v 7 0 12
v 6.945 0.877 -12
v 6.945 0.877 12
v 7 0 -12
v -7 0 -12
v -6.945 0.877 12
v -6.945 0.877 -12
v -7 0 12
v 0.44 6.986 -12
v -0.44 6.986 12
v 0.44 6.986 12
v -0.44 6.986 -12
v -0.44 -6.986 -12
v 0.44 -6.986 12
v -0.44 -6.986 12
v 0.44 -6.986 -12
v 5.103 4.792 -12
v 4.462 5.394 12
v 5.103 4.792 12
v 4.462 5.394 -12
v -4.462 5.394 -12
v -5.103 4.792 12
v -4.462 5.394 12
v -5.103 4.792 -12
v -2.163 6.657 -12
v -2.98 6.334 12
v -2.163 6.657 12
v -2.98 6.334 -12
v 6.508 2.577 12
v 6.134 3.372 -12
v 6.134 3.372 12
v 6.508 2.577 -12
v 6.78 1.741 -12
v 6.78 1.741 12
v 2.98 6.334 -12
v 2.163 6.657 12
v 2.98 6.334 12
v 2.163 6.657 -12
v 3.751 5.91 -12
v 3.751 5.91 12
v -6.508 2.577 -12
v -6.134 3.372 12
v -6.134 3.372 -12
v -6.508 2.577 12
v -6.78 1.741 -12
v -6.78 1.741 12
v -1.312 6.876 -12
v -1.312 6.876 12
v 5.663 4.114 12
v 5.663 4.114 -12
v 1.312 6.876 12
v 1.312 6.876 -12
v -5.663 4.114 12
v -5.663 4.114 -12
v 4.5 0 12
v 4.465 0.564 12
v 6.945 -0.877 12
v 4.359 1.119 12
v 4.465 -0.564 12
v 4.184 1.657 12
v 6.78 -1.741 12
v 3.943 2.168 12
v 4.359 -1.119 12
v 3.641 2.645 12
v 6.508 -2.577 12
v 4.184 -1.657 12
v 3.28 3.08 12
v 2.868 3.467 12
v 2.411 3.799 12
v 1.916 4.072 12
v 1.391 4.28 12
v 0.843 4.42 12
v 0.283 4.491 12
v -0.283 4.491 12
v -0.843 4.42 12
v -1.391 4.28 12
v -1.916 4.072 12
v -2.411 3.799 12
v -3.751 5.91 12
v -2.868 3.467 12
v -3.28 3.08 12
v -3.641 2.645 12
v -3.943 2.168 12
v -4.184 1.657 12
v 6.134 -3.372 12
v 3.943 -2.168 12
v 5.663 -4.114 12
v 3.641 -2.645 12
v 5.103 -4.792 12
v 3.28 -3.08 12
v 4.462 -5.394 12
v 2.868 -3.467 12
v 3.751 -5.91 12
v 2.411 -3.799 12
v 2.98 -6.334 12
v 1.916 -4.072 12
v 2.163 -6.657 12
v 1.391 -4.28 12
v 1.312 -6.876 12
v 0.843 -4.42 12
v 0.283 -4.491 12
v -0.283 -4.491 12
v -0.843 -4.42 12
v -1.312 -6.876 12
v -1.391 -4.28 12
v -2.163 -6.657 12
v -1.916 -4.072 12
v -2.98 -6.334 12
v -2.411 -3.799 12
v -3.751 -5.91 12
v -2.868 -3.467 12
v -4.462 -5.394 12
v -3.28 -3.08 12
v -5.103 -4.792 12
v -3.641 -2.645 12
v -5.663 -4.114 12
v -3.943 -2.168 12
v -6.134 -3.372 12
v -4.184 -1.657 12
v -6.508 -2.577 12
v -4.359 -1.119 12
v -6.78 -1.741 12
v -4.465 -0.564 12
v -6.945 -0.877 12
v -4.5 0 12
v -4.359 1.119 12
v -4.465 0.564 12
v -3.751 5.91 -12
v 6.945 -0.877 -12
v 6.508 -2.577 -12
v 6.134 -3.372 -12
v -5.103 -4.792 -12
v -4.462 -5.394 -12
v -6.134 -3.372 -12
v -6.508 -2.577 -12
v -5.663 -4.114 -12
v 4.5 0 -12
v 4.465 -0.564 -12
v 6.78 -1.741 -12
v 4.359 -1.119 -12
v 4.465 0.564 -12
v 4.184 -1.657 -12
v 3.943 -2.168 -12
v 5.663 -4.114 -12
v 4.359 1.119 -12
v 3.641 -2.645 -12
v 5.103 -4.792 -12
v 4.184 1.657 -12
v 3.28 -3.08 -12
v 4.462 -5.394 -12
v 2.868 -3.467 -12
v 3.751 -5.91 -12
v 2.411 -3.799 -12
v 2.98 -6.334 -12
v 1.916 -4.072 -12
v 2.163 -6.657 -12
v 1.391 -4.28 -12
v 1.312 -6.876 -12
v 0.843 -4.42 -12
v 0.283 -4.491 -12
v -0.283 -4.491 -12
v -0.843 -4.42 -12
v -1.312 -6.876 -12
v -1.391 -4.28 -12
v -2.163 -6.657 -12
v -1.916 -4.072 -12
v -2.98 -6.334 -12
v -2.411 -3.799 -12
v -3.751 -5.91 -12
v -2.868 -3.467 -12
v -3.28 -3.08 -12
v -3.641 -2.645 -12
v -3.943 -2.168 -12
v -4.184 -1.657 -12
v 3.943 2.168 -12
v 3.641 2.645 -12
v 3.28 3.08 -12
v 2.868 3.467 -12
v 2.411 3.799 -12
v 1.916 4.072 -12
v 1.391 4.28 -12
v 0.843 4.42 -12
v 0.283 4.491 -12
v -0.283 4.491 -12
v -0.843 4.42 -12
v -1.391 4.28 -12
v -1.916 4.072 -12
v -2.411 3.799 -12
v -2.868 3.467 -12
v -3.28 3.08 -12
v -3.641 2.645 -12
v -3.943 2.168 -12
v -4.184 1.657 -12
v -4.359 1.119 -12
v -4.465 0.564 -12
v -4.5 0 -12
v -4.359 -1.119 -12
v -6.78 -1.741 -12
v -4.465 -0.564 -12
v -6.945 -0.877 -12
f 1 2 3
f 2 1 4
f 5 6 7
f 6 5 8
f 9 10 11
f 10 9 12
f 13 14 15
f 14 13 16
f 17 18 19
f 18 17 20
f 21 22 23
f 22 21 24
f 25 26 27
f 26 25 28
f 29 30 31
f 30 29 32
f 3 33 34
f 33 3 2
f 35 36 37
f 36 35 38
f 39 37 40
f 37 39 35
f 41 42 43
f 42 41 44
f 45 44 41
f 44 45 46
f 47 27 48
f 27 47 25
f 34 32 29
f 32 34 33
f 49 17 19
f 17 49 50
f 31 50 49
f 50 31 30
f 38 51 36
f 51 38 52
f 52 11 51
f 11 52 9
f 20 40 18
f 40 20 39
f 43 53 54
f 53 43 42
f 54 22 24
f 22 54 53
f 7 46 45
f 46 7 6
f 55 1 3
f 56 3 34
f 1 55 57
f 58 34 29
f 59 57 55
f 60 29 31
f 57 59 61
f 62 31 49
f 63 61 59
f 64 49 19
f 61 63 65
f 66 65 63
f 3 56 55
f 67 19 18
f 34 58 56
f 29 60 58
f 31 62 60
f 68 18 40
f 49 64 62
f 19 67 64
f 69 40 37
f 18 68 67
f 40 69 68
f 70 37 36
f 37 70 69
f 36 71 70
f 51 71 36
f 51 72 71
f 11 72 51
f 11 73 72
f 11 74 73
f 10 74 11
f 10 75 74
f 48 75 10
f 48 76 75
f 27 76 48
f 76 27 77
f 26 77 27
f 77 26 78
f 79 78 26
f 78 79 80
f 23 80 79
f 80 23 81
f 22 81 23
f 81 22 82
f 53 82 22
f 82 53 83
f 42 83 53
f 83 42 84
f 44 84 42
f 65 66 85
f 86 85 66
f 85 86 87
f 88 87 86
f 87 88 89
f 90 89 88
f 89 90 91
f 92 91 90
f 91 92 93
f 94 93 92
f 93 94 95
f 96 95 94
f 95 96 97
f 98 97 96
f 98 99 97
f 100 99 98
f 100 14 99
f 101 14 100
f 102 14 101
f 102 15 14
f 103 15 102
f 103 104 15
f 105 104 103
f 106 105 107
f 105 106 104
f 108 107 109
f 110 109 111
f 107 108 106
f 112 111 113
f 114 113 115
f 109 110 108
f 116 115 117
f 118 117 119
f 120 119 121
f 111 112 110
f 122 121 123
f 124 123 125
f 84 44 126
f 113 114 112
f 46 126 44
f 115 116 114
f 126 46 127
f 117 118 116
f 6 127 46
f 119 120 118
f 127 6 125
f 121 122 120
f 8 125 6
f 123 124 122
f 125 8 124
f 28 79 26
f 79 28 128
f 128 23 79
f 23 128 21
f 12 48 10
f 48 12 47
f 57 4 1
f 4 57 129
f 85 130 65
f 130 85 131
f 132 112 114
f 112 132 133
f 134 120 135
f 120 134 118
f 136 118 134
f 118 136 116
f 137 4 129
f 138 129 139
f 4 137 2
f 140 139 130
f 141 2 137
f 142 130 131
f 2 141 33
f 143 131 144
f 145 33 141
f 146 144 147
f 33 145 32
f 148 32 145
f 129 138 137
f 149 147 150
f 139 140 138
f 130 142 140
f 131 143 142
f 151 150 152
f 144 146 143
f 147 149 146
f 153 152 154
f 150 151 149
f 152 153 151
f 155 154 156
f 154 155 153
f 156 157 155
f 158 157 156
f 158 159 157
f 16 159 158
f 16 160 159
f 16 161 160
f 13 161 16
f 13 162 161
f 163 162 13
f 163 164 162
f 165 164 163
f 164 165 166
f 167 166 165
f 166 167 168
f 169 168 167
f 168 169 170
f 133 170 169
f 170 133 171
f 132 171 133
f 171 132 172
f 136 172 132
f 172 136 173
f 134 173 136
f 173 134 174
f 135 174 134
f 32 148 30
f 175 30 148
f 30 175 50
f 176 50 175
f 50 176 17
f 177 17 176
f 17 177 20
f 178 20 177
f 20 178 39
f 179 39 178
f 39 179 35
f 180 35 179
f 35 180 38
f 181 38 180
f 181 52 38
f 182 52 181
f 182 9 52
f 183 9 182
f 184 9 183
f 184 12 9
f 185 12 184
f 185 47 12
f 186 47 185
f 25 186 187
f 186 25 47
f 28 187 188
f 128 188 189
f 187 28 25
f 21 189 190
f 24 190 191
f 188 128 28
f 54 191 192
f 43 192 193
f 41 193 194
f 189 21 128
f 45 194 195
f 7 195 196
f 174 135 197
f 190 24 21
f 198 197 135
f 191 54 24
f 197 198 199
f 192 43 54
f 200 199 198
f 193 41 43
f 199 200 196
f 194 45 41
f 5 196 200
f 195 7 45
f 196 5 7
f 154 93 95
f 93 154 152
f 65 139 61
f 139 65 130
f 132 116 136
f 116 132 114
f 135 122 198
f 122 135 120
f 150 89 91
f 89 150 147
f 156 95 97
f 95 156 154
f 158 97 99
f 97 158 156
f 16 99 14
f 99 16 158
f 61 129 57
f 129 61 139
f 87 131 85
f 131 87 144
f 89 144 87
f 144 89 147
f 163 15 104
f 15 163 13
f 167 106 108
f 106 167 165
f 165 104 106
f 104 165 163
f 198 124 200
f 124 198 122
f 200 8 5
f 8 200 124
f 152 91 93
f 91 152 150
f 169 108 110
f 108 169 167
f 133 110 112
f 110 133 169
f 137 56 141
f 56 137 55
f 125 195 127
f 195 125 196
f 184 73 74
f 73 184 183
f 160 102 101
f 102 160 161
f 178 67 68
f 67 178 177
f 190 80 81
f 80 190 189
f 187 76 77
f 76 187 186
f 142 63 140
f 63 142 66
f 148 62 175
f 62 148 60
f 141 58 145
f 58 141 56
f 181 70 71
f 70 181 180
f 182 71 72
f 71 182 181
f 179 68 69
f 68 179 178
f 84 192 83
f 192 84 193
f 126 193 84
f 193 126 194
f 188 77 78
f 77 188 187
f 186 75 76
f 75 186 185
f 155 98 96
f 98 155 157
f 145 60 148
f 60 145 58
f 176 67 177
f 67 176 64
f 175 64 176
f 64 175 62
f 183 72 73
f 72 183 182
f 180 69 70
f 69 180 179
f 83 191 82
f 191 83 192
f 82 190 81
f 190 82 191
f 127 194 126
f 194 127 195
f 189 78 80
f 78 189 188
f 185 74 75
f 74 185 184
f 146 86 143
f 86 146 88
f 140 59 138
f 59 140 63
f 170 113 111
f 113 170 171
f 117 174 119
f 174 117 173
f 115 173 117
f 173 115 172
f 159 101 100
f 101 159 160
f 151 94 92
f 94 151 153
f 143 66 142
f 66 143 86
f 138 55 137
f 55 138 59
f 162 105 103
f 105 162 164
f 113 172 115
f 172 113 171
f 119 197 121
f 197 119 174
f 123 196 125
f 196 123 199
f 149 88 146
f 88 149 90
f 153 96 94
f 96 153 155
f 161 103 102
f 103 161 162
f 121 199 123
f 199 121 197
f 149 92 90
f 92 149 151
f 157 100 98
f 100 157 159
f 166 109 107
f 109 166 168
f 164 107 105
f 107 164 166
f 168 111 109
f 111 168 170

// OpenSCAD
$fn = 50;


difference() {
	union() {
		translate(v = [0, 0, -12.0000000000]) {
			cylinder(h = 24, r = 7.0000000000);
		}
	}
	union() {
		translate(v = [0, 0, -100.0000000000]) {
			cylinder(h = 200, r = 4.5000000000);
		}
	}
}
